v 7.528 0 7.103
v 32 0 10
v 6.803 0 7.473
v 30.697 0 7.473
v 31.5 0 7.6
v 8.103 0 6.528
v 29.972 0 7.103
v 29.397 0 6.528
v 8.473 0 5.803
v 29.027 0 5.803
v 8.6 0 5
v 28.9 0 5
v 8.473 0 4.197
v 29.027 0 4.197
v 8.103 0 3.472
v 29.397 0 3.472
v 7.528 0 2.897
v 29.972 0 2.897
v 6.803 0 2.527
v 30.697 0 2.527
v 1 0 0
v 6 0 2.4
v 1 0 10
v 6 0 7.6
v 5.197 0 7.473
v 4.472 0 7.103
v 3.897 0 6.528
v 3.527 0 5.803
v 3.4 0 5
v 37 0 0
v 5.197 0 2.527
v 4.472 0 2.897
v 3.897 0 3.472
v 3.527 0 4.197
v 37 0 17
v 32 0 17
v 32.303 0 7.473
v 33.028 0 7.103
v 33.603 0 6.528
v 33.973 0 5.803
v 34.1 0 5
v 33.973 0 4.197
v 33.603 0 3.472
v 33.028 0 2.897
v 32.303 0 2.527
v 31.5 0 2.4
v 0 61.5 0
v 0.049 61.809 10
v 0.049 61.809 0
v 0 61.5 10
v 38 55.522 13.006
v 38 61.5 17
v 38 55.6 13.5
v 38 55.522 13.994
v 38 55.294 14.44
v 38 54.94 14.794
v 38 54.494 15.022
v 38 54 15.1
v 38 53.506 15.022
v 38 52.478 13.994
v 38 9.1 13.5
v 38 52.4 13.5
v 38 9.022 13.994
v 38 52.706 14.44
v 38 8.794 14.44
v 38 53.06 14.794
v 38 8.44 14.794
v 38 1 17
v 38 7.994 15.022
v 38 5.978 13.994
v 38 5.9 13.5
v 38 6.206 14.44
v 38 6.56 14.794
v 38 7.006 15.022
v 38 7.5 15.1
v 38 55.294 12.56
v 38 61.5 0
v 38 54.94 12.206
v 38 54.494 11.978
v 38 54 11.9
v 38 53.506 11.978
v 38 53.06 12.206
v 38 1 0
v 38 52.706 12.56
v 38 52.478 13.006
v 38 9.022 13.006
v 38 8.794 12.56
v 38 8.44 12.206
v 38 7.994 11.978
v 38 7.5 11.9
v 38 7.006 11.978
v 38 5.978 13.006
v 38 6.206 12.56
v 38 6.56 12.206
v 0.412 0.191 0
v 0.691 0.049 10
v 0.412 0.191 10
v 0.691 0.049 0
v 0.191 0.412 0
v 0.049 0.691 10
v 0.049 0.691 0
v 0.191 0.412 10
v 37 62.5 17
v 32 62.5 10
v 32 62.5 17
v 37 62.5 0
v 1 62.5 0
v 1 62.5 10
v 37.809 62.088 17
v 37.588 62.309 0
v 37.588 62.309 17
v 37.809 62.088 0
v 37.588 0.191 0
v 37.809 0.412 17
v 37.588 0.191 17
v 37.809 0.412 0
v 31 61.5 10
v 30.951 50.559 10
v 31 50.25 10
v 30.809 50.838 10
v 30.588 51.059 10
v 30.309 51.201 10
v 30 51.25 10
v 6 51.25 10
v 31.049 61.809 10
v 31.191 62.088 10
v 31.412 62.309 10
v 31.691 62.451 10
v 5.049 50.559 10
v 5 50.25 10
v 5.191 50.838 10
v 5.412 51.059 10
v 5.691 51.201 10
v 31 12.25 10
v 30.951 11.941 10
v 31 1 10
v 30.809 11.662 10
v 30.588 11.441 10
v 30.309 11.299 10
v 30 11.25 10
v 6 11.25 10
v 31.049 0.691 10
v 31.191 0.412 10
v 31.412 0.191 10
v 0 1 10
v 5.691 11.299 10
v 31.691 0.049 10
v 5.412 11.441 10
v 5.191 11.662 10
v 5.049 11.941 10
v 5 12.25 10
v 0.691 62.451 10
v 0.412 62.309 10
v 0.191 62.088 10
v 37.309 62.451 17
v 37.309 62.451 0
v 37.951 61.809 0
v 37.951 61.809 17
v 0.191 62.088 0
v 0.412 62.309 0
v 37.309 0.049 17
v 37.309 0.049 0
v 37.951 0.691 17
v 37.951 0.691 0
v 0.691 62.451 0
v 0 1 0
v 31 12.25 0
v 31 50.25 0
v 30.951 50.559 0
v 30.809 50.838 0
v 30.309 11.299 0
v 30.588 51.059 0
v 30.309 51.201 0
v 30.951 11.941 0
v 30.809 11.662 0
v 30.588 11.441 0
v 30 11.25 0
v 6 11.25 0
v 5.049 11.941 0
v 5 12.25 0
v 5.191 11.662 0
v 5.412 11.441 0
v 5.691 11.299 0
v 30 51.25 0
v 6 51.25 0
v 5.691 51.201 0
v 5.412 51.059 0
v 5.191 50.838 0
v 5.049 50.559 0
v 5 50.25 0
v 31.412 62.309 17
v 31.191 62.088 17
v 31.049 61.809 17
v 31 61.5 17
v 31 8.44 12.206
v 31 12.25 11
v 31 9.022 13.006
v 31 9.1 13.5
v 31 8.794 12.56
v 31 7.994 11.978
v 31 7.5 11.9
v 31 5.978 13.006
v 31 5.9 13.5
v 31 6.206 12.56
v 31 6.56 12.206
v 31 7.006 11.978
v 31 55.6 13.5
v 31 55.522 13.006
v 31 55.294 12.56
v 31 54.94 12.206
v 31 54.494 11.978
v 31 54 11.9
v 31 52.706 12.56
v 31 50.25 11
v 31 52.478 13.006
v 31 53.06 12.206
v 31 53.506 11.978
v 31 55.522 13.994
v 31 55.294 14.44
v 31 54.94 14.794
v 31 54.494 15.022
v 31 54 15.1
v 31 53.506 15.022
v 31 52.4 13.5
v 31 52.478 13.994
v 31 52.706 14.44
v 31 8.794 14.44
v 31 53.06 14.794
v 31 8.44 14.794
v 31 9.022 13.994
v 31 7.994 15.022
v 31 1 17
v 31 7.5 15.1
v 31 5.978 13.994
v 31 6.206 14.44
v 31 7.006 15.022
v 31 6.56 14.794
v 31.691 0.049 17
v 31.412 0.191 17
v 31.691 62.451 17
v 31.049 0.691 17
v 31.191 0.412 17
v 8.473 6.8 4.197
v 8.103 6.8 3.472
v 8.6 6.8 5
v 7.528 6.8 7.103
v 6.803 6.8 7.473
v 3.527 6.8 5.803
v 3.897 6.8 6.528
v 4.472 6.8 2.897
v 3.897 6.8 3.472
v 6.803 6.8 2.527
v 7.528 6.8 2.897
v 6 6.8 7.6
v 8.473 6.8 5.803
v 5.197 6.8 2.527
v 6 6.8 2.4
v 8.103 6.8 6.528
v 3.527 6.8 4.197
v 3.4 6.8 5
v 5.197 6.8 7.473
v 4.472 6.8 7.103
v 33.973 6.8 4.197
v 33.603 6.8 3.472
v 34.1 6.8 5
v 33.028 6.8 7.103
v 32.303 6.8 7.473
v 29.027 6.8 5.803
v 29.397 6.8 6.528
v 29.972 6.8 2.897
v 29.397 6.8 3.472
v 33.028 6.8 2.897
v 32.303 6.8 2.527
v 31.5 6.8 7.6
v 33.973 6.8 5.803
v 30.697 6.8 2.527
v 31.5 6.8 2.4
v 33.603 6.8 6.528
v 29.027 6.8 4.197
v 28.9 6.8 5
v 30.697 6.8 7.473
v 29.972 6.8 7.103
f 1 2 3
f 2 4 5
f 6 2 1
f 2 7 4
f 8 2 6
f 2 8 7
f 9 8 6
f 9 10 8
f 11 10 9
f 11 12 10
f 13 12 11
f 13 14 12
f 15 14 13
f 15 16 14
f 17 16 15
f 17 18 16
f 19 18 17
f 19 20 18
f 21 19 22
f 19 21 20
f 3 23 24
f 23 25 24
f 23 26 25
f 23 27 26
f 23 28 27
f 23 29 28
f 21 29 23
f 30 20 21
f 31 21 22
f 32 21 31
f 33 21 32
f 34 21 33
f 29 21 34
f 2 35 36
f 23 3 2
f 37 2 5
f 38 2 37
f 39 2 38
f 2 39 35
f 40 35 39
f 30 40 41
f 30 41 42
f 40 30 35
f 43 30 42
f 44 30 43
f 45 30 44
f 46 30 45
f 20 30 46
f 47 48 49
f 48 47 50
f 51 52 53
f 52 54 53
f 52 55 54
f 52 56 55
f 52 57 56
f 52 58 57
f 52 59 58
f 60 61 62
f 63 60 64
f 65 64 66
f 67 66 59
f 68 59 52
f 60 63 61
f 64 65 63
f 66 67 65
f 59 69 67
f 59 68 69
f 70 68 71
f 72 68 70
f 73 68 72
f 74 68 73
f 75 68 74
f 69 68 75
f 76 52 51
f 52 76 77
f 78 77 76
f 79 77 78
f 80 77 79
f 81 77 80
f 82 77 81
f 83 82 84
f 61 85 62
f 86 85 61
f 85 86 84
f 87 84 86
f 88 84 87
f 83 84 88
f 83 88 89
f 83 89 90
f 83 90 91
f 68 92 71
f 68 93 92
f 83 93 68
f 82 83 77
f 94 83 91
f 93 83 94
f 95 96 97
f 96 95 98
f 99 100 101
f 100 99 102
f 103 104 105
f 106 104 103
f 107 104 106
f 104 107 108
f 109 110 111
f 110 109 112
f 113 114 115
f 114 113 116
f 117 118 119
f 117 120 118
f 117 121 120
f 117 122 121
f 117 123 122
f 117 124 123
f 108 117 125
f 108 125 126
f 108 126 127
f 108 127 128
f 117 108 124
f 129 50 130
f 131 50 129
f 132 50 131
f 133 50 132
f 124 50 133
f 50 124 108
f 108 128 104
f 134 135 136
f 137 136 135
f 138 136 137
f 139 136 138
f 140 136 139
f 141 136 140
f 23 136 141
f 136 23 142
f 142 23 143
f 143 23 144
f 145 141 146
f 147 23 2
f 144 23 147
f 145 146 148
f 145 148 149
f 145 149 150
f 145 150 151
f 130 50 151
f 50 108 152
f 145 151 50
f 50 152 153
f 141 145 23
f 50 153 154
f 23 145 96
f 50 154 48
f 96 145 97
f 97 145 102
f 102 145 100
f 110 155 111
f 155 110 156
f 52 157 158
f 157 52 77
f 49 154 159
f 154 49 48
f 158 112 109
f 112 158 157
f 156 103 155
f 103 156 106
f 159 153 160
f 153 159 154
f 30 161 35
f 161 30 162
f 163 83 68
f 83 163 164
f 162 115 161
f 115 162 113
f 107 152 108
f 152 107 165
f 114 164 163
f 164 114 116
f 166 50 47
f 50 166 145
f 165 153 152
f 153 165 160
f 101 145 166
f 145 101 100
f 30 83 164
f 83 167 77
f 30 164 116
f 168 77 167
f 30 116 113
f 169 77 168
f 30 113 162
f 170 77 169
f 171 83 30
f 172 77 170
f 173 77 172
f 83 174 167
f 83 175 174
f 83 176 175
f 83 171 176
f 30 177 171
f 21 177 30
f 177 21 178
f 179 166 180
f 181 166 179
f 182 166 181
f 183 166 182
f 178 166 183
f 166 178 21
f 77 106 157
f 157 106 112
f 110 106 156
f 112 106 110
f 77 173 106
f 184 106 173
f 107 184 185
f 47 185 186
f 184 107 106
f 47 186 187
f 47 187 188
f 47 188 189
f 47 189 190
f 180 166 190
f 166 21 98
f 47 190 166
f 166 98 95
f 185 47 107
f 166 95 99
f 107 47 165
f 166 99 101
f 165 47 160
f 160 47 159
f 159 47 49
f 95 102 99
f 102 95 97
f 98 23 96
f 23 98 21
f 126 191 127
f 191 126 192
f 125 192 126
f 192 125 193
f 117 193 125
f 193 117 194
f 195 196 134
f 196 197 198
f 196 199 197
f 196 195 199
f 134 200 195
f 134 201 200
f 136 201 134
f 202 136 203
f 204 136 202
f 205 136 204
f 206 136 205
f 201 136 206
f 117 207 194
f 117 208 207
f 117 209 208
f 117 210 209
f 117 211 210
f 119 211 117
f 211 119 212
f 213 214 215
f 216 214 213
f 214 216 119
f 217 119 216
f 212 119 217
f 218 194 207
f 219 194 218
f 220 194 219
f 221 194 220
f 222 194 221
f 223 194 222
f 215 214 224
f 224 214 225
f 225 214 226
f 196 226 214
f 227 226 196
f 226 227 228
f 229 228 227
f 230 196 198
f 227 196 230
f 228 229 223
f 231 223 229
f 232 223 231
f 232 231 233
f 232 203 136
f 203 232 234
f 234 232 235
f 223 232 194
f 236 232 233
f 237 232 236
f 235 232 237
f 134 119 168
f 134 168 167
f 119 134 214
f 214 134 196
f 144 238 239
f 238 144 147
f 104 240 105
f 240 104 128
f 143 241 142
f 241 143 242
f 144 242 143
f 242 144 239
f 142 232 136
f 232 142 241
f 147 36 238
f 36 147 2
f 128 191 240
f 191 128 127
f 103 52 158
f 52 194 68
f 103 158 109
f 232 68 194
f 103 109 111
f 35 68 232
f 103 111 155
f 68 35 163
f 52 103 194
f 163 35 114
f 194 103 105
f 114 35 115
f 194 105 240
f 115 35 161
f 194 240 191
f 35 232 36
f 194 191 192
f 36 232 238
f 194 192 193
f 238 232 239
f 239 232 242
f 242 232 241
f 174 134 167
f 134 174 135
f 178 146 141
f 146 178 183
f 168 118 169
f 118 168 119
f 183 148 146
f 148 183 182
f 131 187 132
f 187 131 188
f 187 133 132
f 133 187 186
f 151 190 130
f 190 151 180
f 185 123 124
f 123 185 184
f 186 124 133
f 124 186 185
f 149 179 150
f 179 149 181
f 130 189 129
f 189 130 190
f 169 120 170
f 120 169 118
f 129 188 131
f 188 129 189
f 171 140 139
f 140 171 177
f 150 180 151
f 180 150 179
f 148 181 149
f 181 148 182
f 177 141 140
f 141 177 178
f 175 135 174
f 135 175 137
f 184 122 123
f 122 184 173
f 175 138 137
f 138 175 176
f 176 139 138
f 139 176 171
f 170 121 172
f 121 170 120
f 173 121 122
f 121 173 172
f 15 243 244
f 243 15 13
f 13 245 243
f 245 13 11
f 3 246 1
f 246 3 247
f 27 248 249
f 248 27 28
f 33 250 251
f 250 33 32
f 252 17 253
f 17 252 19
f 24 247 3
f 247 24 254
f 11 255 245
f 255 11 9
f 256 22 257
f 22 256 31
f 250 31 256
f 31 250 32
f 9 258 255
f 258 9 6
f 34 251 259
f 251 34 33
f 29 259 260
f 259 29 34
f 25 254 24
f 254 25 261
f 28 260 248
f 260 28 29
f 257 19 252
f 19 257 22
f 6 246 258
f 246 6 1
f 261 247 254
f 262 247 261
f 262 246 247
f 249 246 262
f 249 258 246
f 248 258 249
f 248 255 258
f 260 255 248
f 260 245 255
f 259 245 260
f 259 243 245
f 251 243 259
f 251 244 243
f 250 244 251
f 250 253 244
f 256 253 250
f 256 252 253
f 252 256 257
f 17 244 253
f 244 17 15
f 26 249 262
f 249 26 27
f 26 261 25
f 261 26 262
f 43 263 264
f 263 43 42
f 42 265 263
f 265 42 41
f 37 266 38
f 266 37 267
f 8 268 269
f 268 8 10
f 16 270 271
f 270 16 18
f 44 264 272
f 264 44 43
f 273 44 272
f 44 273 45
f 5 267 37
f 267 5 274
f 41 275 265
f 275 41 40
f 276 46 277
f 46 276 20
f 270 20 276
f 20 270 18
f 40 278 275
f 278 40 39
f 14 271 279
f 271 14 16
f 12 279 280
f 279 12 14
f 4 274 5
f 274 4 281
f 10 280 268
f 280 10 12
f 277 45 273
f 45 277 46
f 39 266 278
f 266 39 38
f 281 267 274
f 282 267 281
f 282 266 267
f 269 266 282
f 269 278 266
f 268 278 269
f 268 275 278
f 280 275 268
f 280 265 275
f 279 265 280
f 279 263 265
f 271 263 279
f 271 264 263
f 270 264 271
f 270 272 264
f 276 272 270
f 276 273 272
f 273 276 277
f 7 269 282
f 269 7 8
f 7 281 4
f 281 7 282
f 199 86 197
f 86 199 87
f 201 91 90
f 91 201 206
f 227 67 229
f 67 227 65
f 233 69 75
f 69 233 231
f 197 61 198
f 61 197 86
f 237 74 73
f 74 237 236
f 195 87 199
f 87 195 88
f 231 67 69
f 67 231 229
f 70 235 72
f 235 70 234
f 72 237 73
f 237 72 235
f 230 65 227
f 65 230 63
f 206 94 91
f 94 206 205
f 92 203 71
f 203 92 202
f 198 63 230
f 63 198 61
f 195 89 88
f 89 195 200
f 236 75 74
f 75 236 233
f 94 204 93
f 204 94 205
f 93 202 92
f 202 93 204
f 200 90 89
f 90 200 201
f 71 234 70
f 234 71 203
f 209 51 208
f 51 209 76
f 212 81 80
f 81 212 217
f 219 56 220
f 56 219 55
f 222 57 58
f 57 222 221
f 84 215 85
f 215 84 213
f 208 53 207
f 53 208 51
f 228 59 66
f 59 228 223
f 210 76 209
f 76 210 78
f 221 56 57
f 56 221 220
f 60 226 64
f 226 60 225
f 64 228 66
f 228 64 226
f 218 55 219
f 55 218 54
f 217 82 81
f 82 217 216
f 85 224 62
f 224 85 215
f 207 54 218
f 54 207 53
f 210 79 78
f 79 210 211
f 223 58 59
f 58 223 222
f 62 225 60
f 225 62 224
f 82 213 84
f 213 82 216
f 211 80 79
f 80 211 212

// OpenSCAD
$fn = 20;
len = 62.5;
wid = 33;

spacing = 46.5;
boltDia = 3.2;

endcap();

module endcap() {
   difference() {
      union() {
         hull() {
            translate([1,1,0]) cylinder(r=1,h=10);
            translate([wid+5-1,1,0]) cylinder(r=1,h=10);
            translate([1,len-1,0]) cylinder(r=1,h=10);
            translate([wid+5-1,len-1,0]) cylinder(r=1,h=10);
         }
         lip();
      }

      /* wire passthrough */
      hull() {
         translate([6,(len-40)/2+1,-1]) cylinder(r=1,h=12);
         translate([wid+5-1-7,(len-40)/2+1,-1]) cylinder(r=1,h=12);
         translate([6,(len+40)/2-1,-1]) cylinder(r=1,h=12);
         translate([wid+5-1-7,(len+40)/2-1,-1]) cylinder(r=1,h=12);
      }

      /* heat set inserts */
      translate([6,-0.1,5]) rotate([-90,0,0]) cylinder (d=5.2, h=6.9);
      translate([31.5,-0.1,5]) rotate([-90,0,0]) cylinder (d=5.2, h=6.9);

      /* screws */
      translate([wid+6,7.5,3.5+10]) rotate([0,-90,0]) cylinder(d=3.2,h=10);
      translate([wid+6,7.5+spacing,3.5+10]) rotate([0,-90,0]) cylinder(d=3.2,h=10);
   }
}


module lip() {
   hull() {
      translate([wid-1,1,0]) cylinder(r=1,h=17);
      translate([wid+5-1,1,0]) cylinder(r=1,h=17);
      translate([wid-1,len-1,0]) cylinder(r=1,h=17);
      translate([wid+5-1,len-1,0]) cylinder(r=1,h=17);
   }
}
